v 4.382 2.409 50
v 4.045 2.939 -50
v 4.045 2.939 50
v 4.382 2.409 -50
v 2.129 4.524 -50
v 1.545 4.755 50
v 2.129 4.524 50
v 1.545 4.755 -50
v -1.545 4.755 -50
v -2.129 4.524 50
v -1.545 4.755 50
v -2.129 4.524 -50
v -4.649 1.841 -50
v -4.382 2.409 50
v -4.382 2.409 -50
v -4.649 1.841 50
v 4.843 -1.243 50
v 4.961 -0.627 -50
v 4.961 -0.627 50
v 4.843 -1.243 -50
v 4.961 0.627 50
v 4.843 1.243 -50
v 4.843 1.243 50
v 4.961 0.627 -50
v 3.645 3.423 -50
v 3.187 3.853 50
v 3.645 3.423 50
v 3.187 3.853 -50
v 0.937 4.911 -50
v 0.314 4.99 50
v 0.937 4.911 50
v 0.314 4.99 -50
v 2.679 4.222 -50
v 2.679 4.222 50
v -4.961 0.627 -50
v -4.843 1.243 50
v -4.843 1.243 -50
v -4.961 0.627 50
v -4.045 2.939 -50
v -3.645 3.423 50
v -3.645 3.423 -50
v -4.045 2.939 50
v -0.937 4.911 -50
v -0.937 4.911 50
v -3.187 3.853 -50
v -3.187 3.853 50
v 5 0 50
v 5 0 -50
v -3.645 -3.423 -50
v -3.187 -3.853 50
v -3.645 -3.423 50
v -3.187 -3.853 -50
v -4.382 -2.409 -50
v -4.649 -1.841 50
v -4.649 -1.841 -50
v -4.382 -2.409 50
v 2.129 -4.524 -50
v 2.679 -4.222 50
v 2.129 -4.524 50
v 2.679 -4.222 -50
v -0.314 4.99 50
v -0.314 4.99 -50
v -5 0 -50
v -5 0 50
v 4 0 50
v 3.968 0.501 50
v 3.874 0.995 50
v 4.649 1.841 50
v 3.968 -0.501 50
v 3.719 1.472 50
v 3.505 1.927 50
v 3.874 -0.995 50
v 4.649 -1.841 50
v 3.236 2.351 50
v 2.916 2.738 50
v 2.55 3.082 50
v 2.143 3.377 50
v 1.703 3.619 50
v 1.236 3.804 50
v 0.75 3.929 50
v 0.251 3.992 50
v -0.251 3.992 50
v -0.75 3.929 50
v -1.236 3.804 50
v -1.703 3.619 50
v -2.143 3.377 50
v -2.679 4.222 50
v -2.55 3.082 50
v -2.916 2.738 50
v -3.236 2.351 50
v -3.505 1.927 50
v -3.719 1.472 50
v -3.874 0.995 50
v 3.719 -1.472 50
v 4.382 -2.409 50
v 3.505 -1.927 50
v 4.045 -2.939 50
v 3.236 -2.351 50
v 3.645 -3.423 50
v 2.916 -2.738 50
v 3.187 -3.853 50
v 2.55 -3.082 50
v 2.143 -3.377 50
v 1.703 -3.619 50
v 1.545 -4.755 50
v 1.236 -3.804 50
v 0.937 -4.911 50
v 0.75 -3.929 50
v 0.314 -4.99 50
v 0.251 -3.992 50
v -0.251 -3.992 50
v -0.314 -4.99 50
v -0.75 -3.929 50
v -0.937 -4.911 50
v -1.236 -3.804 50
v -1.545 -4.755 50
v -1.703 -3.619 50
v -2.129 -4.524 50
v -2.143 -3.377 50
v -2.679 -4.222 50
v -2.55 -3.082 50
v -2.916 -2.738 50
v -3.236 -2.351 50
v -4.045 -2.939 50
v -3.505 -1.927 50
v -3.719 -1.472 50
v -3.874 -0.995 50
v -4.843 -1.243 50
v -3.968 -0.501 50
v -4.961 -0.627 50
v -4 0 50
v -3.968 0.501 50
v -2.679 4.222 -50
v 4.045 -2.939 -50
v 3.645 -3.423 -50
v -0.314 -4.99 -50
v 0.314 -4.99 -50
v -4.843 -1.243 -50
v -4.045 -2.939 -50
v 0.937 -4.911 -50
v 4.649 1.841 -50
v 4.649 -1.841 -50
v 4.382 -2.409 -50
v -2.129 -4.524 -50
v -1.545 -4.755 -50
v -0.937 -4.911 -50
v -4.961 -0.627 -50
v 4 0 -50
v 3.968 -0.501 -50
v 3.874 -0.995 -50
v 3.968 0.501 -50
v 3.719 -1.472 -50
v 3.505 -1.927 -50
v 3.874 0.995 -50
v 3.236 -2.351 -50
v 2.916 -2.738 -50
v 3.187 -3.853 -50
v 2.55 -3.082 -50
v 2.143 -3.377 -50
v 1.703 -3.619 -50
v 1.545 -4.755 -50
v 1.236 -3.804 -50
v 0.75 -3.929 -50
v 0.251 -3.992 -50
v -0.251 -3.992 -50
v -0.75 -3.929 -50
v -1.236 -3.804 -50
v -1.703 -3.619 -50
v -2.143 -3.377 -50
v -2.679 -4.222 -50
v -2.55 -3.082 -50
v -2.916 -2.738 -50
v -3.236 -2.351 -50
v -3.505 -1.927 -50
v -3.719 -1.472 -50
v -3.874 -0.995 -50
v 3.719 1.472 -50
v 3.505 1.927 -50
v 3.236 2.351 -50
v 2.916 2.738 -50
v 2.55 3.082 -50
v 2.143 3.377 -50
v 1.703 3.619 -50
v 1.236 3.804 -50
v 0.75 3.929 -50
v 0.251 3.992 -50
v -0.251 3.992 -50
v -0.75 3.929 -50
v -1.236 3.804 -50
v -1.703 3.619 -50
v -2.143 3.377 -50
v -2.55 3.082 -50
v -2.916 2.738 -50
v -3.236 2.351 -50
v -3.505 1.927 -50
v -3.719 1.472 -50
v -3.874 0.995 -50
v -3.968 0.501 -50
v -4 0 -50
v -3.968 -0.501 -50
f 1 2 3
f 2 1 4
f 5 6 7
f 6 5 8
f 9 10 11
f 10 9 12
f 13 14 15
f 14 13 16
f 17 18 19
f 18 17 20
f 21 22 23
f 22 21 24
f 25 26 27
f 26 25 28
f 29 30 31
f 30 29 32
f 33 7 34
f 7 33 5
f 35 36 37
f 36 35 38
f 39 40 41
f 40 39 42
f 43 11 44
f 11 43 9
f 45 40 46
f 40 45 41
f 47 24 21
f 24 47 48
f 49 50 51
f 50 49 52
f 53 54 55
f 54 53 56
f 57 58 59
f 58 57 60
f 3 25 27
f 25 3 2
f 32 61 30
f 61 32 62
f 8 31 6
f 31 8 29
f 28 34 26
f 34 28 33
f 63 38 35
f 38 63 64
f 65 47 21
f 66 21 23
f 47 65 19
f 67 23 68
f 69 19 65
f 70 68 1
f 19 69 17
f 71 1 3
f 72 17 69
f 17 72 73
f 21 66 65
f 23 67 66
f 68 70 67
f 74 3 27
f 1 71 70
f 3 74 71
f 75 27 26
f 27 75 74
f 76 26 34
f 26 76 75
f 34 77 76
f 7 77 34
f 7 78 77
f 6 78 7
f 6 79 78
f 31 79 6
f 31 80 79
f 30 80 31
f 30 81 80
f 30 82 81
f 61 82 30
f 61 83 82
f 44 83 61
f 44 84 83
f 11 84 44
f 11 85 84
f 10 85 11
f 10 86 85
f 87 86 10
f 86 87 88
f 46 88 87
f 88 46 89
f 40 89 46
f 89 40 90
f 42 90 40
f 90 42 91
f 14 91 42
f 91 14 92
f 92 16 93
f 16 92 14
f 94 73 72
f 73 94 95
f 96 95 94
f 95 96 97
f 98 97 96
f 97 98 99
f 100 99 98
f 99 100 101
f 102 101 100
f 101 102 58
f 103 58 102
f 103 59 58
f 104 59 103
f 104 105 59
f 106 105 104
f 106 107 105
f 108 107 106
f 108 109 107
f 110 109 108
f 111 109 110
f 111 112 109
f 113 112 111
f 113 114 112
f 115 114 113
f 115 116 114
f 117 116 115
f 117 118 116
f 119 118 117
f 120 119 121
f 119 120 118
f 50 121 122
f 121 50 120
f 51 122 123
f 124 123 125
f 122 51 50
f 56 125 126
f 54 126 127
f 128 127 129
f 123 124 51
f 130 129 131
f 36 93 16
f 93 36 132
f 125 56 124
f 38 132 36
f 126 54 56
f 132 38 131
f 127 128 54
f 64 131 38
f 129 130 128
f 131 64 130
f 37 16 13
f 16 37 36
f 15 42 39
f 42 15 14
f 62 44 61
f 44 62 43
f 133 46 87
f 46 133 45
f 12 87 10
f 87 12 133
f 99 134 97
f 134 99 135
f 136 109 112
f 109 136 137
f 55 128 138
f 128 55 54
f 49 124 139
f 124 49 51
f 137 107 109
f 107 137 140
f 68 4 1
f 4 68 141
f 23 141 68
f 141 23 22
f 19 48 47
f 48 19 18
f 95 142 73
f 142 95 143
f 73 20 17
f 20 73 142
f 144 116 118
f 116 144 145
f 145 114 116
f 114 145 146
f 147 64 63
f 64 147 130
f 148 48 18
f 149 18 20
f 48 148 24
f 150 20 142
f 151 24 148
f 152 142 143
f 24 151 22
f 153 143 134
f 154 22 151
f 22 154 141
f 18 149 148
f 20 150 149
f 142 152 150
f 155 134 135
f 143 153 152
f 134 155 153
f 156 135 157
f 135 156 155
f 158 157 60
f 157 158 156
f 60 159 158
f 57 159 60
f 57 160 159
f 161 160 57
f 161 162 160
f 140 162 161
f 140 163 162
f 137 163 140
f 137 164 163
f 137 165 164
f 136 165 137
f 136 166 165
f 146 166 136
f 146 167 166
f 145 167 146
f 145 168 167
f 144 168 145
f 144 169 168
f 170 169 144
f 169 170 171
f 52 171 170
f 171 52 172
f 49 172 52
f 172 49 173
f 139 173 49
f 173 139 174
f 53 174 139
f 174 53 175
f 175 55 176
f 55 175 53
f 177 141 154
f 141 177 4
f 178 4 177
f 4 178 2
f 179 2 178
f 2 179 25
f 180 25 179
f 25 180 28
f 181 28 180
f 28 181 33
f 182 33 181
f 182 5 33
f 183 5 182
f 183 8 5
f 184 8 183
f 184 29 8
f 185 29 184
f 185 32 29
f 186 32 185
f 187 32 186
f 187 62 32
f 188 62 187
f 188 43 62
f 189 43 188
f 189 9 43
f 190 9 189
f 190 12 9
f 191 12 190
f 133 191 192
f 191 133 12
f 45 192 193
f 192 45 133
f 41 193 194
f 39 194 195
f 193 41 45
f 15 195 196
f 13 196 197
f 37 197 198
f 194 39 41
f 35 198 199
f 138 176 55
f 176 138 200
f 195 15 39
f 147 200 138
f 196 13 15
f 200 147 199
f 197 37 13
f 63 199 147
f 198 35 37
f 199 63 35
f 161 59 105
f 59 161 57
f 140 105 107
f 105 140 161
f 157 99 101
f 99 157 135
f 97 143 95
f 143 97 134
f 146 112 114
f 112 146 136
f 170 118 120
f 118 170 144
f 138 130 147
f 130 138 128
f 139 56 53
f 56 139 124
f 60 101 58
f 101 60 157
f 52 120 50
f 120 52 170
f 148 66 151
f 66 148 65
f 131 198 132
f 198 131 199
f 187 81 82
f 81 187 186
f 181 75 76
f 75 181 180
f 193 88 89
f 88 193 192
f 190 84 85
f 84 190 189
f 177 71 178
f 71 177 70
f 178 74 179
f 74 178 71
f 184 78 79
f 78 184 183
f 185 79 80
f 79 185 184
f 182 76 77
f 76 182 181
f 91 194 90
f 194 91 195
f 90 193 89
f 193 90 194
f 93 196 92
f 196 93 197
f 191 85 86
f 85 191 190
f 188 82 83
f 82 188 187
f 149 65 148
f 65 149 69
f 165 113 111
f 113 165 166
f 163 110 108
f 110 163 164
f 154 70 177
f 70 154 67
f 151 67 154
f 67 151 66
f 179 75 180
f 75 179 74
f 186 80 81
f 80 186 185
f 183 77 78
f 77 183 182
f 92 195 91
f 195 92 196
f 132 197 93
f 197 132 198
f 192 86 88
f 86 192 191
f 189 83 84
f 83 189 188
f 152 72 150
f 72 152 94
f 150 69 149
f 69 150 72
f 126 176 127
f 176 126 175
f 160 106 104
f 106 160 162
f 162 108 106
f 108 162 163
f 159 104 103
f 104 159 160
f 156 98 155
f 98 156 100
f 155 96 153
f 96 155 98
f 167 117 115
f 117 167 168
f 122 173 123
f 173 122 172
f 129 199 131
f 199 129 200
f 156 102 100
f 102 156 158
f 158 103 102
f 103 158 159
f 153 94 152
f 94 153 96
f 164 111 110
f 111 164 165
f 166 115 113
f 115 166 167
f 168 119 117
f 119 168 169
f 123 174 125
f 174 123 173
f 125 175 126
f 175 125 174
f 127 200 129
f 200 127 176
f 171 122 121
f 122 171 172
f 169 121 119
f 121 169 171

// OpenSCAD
$fn = 50;


difference() {
	union() {
		translate(v = [0, 0, -50.0000000000]) {
			cylinder(h = 100, r = 5.0000000000);
		}
	}
	union() {
		translate(v = [0, 0, -100.0000000000]) {
			cylinder(h = 200, r = 4);
		}
	}
}
